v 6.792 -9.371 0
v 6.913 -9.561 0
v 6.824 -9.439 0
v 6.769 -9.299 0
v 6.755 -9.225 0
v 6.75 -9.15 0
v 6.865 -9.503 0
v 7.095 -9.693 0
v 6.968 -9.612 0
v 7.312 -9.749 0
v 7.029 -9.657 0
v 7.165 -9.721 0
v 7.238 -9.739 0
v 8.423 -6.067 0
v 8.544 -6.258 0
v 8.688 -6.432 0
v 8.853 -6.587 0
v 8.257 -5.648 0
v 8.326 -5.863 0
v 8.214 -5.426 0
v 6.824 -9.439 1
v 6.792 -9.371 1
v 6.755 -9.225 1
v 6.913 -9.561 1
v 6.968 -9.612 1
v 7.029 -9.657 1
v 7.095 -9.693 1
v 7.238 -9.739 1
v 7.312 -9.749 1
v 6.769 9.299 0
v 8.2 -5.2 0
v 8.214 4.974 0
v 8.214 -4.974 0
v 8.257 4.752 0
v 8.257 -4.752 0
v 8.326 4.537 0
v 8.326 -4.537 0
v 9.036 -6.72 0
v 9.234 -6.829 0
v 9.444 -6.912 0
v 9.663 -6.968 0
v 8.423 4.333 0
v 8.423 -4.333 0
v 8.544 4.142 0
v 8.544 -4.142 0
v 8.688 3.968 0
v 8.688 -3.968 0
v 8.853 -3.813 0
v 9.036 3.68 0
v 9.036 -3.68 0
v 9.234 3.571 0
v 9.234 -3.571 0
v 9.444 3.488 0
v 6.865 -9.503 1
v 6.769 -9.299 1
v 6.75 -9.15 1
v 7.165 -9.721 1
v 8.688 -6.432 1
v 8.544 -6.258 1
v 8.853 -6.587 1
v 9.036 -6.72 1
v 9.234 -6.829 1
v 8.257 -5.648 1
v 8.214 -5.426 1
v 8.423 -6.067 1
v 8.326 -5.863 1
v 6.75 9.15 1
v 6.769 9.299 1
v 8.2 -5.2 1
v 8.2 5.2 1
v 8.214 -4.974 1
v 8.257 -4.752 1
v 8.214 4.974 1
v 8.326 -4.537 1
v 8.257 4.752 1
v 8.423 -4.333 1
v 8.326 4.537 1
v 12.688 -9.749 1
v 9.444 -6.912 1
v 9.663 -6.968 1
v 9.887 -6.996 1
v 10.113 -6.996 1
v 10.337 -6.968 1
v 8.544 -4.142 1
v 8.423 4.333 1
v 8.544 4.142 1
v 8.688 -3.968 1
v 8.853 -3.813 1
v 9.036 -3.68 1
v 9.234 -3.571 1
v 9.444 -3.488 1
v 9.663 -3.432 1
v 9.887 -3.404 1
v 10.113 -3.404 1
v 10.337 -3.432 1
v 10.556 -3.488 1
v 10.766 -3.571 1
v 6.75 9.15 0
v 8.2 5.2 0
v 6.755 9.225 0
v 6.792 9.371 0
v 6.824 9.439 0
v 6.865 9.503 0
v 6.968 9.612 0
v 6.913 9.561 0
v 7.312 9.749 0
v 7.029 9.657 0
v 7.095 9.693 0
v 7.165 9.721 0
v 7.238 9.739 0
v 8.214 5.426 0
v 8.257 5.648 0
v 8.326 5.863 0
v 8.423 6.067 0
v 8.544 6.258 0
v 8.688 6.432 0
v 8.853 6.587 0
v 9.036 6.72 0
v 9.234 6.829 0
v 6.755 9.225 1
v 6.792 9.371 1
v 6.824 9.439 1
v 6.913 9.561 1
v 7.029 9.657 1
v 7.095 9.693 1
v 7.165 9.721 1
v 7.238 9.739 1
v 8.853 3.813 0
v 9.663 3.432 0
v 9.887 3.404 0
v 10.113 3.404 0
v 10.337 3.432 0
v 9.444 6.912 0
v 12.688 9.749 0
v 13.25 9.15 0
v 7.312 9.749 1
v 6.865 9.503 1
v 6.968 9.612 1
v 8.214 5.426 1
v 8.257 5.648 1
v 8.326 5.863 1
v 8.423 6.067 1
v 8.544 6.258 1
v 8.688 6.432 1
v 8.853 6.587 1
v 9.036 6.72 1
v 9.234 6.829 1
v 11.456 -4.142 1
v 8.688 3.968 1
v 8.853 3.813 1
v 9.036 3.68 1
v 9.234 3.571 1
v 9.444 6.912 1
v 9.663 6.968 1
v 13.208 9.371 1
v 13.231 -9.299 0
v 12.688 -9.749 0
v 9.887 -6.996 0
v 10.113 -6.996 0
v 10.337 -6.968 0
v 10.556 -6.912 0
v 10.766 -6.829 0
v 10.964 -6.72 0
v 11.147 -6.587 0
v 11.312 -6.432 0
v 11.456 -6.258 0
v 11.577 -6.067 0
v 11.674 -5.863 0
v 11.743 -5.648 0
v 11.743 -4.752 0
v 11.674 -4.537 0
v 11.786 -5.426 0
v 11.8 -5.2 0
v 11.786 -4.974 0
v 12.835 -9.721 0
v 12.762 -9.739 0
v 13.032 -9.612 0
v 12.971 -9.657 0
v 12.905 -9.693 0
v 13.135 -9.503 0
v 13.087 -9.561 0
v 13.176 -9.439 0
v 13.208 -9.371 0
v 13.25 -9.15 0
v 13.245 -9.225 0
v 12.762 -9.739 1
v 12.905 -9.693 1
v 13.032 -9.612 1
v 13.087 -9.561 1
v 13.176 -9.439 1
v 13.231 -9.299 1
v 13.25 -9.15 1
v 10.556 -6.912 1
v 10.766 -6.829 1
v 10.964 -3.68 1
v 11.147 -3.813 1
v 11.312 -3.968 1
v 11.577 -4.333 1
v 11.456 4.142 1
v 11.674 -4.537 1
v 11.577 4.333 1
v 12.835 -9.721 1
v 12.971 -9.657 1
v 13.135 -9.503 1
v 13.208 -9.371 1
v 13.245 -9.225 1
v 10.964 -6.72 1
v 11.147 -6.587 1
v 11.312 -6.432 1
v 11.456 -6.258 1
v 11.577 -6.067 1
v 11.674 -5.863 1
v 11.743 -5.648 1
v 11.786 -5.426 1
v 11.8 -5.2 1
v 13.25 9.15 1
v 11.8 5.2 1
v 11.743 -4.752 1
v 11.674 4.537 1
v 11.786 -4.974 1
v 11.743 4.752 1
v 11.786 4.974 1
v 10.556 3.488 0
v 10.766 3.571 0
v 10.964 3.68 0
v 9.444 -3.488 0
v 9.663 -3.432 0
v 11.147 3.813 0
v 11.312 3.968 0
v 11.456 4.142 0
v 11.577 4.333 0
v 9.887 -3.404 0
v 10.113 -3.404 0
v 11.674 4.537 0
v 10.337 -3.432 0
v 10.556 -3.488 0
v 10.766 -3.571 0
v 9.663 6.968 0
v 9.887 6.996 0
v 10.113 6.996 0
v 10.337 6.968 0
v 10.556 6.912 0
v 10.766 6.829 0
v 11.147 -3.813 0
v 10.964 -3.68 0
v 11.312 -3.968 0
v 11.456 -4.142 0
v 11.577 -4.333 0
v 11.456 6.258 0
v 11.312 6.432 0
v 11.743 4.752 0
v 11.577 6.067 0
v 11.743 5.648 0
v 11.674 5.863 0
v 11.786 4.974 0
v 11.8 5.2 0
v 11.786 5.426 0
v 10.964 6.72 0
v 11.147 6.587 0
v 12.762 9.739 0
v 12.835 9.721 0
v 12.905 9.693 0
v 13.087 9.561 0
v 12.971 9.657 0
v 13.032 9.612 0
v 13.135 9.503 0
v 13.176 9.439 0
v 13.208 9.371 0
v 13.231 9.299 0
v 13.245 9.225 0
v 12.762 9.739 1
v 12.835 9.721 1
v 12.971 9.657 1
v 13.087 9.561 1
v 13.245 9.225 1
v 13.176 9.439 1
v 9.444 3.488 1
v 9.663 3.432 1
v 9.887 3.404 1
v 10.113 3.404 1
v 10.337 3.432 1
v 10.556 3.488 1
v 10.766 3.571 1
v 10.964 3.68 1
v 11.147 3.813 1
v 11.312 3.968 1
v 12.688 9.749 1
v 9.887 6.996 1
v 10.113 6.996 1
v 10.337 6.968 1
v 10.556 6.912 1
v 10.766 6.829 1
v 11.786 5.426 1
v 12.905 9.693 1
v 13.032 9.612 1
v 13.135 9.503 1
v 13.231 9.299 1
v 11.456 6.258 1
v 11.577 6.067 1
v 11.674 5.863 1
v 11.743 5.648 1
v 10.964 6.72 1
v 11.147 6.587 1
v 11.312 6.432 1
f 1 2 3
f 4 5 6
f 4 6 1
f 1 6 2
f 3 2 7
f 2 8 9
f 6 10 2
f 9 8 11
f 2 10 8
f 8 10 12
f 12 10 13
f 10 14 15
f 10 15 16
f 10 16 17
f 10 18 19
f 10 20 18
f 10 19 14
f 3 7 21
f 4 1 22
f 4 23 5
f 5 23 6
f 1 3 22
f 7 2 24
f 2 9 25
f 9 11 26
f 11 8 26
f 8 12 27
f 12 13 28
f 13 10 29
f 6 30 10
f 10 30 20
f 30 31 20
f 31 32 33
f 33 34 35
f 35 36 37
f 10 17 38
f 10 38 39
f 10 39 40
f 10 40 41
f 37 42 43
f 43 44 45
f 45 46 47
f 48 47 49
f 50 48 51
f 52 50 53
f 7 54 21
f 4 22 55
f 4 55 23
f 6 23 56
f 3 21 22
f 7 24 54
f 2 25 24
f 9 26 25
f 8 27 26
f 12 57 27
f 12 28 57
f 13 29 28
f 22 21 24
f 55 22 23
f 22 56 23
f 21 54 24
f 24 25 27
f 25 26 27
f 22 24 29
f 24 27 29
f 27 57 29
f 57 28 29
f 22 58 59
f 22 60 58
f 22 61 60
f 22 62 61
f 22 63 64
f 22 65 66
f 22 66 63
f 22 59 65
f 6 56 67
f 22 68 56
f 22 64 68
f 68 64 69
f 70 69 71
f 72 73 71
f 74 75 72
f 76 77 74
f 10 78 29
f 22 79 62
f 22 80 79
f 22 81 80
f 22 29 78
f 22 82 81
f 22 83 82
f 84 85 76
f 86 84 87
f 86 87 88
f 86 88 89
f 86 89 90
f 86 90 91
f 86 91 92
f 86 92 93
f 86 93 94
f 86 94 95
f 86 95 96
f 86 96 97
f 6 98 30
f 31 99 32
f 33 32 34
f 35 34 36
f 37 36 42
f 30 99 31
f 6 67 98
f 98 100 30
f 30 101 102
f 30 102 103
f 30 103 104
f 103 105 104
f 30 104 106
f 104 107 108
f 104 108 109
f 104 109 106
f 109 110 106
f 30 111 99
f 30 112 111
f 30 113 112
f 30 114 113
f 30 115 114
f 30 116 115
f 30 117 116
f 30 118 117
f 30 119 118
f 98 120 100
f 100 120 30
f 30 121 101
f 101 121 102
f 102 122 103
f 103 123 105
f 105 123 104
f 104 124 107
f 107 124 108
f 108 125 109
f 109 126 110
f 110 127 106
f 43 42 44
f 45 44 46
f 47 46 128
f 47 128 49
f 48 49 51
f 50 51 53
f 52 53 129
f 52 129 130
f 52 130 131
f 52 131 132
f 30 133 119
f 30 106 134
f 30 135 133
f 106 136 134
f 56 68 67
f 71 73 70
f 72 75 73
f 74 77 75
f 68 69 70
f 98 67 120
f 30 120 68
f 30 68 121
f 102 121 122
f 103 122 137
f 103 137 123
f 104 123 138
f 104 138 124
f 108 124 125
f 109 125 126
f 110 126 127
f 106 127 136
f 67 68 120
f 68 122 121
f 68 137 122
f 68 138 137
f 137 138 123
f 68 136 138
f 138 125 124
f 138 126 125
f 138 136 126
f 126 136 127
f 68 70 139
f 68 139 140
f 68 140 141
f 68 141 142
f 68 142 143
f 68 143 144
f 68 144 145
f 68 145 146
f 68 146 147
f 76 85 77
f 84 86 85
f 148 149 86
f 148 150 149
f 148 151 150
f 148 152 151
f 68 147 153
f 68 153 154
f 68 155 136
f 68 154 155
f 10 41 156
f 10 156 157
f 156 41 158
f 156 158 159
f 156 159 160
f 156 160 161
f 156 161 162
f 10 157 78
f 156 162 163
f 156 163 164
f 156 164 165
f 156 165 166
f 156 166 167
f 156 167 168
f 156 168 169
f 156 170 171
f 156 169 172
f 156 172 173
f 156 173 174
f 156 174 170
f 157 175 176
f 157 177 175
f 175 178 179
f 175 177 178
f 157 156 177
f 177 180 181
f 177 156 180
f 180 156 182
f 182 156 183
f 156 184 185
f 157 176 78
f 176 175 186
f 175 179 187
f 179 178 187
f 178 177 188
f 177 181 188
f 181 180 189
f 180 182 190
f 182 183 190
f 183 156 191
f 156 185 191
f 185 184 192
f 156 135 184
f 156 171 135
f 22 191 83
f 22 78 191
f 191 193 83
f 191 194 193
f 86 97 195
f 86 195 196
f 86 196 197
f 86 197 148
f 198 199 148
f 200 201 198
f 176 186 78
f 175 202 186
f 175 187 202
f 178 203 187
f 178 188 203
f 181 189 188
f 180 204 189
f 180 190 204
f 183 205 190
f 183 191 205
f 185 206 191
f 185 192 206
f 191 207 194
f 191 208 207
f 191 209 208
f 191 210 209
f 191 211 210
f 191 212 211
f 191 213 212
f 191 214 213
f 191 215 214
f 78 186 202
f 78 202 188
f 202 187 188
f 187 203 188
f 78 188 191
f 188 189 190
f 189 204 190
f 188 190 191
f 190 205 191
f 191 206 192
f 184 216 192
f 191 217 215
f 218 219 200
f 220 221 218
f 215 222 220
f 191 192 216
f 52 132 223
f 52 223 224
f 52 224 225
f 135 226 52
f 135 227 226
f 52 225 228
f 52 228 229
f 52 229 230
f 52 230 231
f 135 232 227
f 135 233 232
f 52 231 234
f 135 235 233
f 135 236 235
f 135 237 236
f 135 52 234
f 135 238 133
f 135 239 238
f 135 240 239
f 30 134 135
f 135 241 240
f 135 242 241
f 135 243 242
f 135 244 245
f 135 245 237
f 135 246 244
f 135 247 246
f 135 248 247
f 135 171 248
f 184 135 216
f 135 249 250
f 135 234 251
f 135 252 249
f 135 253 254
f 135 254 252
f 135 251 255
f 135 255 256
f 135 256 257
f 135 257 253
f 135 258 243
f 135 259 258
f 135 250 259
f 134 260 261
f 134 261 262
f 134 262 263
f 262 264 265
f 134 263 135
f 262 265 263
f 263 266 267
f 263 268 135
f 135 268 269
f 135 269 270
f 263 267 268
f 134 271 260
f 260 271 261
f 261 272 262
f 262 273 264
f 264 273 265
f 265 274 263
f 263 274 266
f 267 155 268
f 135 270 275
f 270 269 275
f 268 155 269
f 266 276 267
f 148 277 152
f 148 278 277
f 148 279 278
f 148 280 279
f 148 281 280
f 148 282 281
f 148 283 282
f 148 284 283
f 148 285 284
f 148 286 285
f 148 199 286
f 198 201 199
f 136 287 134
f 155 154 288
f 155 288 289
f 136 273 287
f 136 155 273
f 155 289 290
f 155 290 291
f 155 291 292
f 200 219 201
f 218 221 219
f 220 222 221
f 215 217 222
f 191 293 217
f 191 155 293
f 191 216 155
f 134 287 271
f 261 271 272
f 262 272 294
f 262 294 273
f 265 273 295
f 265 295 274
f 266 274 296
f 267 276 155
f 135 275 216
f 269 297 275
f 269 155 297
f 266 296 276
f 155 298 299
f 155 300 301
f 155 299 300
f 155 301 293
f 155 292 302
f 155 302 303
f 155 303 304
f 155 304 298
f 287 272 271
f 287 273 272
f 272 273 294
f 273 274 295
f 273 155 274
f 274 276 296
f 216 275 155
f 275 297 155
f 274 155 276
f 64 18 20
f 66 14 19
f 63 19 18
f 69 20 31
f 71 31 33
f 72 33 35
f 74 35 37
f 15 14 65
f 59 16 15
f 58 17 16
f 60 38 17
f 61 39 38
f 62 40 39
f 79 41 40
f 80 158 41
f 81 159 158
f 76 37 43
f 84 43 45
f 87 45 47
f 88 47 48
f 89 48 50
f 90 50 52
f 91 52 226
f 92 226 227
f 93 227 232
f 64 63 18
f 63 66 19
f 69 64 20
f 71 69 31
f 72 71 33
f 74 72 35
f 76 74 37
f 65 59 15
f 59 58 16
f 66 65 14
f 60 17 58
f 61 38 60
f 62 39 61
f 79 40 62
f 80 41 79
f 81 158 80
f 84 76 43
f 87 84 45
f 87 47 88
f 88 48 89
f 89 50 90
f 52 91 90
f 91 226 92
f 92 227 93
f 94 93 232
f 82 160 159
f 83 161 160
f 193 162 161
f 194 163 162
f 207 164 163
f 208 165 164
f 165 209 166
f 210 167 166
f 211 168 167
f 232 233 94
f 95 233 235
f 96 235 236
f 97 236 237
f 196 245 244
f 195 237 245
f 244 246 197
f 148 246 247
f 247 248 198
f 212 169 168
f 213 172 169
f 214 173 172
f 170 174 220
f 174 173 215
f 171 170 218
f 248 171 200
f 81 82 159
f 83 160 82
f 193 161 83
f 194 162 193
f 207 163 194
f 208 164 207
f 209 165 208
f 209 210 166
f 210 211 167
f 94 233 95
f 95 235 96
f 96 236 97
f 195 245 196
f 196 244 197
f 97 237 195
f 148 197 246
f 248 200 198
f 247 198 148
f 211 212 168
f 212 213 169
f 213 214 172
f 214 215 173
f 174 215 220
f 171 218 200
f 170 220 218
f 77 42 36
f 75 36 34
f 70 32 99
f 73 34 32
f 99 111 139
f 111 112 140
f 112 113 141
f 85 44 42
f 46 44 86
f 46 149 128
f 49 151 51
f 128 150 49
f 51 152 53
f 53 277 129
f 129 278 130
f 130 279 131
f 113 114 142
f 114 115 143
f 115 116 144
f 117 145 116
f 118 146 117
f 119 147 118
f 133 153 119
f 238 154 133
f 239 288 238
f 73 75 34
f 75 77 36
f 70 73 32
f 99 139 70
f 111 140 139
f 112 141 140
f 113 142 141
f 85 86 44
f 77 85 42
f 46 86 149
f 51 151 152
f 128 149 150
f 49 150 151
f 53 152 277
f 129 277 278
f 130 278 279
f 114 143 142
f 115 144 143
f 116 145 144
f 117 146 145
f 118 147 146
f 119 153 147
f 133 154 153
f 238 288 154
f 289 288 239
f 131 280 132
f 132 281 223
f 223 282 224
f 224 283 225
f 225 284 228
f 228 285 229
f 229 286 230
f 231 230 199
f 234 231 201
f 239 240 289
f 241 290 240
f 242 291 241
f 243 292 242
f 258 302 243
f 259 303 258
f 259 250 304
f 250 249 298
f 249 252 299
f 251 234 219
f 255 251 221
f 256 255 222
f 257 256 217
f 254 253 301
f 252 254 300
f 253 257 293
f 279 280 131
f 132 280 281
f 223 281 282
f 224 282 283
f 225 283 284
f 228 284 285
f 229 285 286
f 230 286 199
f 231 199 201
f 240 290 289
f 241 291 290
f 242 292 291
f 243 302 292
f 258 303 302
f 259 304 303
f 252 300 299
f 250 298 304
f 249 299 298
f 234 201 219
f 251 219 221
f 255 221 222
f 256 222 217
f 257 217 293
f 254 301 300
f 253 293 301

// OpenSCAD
$fn = 50;

difference() {
	union() {
		translate(v = [-4.5, 0, 1]) {
			rotate(a = [0, 0, 0]) {
				difference() {
					union() {
						translate(v = [14.5, 0, -1]) {
							hull() {
								translate(v = [-2.65, 9.15, 0]) {
									cylinder(h = 1, r = 0.6);
								}
								translate(v = [2.65, 9.15, 0]) {
									cylinder(h = 1, r = 0.6);
								}
								translate(v = [-2.65, -9.15, 0]) {
									cylinder(h = 1, r = 0.6);
								}
								translate(v = [2.65, -9.15, 0]) {
									cylinder(h = 1, r = 0.6);
								}
							}
						}
					}
					union() {
						translate(v = [14.5, -5.2, -2]) {
							cylinder(h = 3, r = 1.8);
						}
						translate(v = [14.5, 5.2, -2]) {
							cylinder(h = 3, r = 1.8);
						}
					}
				}
			}
		}
	}
	union();
}
